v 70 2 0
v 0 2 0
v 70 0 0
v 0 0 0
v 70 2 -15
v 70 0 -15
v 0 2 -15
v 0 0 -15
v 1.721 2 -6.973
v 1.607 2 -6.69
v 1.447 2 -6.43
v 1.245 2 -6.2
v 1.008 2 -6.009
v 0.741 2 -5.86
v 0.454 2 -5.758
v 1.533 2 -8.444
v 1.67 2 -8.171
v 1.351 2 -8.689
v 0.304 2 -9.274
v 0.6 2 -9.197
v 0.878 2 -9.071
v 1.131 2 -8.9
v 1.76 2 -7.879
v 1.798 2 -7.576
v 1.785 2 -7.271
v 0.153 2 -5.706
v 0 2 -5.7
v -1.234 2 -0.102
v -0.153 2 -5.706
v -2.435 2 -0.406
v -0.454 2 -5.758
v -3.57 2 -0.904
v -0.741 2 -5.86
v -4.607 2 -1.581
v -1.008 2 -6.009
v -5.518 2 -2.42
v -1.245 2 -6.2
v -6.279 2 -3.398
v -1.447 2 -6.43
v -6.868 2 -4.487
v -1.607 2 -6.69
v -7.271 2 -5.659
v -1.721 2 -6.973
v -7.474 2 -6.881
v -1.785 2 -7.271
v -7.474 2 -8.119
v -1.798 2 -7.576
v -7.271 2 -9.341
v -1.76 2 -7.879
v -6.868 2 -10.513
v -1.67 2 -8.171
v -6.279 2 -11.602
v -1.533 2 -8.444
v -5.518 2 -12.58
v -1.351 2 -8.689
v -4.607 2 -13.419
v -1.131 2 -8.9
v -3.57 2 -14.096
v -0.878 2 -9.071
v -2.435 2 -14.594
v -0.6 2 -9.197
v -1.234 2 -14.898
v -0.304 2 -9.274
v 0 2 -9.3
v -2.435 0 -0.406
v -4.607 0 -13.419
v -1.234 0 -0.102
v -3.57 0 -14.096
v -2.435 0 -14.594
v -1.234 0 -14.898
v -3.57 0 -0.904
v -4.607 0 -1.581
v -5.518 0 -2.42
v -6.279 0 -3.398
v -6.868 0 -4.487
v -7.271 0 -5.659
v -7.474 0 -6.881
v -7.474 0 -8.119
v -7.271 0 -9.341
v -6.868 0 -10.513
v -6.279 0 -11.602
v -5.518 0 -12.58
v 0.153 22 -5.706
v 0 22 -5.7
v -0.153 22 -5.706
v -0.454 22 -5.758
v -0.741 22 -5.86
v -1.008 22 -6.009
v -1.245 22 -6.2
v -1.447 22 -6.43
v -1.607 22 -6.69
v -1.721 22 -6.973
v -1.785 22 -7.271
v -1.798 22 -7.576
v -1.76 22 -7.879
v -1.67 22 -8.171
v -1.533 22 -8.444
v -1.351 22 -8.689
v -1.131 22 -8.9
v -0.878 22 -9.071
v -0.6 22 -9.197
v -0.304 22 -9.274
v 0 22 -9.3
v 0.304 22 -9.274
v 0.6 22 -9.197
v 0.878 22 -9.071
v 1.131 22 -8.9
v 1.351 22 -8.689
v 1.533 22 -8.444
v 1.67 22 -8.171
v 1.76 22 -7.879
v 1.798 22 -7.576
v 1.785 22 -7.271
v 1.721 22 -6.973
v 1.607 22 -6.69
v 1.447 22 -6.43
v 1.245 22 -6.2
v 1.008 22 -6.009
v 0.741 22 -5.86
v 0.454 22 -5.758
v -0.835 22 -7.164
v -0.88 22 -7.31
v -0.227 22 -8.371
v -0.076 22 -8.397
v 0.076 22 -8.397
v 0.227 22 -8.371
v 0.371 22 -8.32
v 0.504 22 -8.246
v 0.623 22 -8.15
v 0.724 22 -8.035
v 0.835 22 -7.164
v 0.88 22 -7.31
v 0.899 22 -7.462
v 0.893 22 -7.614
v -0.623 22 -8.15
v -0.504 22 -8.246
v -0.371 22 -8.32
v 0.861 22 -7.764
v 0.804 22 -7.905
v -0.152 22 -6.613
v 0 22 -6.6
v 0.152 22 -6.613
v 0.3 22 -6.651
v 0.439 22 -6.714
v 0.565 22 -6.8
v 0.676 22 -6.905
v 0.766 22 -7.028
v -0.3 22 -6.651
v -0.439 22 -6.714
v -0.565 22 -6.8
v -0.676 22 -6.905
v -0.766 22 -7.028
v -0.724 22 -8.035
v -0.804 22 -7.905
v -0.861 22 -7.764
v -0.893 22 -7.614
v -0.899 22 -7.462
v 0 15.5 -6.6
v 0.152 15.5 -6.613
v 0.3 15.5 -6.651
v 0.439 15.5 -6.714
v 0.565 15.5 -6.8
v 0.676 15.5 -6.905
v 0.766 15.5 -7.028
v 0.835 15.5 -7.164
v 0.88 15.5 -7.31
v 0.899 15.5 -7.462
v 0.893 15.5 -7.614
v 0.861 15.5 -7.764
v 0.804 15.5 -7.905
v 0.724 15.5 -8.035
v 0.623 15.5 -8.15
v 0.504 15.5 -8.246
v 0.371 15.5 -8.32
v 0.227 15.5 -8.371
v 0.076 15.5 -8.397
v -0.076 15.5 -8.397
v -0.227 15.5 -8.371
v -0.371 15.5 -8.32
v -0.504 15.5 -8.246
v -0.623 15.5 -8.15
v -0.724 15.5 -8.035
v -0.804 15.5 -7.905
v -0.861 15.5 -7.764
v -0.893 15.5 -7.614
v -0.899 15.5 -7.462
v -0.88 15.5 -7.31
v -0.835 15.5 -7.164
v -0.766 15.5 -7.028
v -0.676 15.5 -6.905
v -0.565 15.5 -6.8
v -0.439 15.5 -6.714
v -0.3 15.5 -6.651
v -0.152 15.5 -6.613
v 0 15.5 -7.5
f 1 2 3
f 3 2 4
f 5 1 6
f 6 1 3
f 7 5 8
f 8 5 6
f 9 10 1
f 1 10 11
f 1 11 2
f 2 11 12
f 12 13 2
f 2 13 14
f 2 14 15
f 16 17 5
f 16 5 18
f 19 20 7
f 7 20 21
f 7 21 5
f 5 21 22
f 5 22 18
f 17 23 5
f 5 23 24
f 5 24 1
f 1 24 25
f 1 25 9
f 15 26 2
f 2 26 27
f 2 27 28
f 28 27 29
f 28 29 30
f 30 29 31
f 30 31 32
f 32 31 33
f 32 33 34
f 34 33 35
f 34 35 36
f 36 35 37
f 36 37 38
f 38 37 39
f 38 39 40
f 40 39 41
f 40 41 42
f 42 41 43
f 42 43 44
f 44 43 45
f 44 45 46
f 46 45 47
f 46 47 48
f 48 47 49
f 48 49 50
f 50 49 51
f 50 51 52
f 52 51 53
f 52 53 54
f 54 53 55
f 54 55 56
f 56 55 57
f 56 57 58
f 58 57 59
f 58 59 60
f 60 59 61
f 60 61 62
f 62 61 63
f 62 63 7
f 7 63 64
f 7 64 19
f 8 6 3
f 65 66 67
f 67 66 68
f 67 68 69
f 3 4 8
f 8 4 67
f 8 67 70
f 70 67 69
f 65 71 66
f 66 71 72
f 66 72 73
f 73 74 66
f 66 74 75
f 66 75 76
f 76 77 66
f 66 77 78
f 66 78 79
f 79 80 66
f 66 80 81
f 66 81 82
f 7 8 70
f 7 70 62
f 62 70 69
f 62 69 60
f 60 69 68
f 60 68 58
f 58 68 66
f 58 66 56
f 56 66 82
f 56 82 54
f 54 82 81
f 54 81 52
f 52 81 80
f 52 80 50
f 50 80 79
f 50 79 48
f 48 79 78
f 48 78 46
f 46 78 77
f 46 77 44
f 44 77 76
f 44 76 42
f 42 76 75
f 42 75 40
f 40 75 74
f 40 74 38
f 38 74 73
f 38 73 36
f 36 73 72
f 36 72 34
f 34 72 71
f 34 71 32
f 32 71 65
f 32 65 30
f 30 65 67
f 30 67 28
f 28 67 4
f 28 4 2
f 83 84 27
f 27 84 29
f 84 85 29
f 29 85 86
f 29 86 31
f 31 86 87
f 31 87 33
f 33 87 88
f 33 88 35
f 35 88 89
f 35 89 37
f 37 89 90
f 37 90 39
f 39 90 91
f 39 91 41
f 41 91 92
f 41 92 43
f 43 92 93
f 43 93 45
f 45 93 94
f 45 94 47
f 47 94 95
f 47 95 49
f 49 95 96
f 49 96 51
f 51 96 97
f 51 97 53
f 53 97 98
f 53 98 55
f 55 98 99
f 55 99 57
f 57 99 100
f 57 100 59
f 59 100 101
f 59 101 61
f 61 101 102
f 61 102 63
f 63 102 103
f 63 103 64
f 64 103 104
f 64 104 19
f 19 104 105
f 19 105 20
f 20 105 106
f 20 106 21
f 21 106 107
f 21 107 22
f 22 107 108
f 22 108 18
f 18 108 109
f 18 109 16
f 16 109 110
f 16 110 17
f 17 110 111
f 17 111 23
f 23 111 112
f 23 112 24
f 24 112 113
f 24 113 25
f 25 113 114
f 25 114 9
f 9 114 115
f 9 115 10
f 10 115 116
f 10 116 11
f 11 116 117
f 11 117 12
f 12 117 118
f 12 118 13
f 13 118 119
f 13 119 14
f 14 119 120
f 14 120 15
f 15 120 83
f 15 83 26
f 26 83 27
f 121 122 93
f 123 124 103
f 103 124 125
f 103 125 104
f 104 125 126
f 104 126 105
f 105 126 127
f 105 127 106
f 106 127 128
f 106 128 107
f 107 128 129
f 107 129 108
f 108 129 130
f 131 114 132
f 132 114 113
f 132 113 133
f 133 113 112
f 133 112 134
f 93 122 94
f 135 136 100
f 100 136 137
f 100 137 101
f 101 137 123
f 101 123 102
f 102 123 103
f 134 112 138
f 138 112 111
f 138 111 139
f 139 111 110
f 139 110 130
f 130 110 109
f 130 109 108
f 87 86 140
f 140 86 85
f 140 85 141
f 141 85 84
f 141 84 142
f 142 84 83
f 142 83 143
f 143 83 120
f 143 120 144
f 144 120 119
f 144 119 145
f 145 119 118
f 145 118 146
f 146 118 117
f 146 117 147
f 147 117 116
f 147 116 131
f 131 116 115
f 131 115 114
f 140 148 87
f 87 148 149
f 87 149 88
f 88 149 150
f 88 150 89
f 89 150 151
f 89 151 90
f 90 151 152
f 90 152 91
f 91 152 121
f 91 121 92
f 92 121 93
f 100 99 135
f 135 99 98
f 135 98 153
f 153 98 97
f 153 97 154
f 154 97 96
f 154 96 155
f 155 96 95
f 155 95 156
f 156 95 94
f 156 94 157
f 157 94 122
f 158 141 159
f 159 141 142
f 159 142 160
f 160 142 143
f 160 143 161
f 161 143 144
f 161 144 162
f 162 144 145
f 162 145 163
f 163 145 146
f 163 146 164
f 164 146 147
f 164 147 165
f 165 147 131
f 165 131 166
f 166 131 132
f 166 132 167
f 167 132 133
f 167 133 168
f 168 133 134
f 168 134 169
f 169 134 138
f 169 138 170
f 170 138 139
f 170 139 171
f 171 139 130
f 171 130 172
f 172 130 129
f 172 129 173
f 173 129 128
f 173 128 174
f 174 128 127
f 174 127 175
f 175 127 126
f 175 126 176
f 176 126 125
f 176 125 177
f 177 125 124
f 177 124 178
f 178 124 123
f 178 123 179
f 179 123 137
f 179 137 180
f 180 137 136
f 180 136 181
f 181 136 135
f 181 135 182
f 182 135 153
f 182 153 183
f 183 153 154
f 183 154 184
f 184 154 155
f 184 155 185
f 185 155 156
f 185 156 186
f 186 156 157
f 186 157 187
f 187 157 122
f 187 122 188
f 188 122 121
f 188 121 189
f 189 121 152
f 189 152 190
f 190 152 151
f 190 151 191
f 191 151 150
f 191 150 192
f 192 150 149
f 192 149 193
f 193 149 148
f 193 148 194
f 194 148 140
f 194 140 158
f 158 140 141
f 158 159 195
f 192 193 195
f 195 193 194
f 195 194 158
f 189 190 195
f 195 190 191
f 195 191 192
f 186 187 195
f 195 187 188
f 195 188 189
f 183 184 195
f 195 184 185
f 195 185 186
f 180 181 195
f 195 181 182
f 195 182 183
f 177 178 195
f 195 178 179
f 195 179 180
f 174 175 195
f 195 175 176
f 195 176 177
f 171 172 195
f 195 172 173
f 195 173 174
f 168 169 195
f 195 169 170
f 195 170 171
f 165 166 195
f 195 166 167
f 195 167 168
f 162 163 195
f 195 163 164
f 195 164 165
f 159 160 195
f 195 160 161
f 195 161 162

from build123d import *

# Parameters (mm, degrees)
SKETCH1_W           = 70
SKETCH1_H           = 15
BOSS_EXTRUDE1_DEPTH = 2
BOSS_EXTRUDE2_START = -2
SKETCH2_R           = 7.5
BOSS_EXTRUDE2_DEPTH = 2
SKETCH3_R           = 1.8
BOSS_EXTRUDE3_DEPTH = 20
SKETCH6_R           = 0.9
CUT_EXTRUDE1_DEPTH  = 6.5


with BuildPart() as part:
    # Sketch1 → Boss-Extrude1 (new body)
    with BuildSketch(Plane(origin=(0, 0, 0), x_dir=(1, 0, 0), z_dir=(0, 1, 0))):
        with Locations((35, 7.5)):
            Rectangle(SKETCH1_W, SKETCH1_H)
    extrude(amount=BOSS_EXTRUDE1_DEPTH)

    # Sketch2 → Boss-Extrude2 (add)
    with BuildSketch(Plane(origin=(0, 2, 0), x_dir=(1, 0, 0), z_dir=(0, 1, 0)).offset(BOSS_EXTRUDE2_START)):
        with Locations((0, 7.5)):
            Circle(SKETCH2_R)
    extrude(amount=BOSS_EXTRUDE2_DEPTH)

    # Sketch3 → Boss-Extrude3 (add)
    with BuildSketch(Plane(origin=(0, 2, 0), x_dir=(1, 0, 0), z_dir=(0, 1, 0))):
        with Locations((0, 7.5)):
            Circle(SKETCH3_R)
    extrude(amount=BOSS_EXTRUDE3_DEPTH)

    # Sketch6 → Cut-Extrude1 (cut)
    with BuildSketch(Plane(origin=(0, 22, 0), x_dir=(1, 0, 0), z_dir=(0, 1, 0))):
        with Locations((0, 7.5)):
            Circle(SKETCH6_R)
    extrude(amount=-CUT_EXTRUDE1_DEPTH, mode=Mode.SUBTRACT)


solid = part.part
